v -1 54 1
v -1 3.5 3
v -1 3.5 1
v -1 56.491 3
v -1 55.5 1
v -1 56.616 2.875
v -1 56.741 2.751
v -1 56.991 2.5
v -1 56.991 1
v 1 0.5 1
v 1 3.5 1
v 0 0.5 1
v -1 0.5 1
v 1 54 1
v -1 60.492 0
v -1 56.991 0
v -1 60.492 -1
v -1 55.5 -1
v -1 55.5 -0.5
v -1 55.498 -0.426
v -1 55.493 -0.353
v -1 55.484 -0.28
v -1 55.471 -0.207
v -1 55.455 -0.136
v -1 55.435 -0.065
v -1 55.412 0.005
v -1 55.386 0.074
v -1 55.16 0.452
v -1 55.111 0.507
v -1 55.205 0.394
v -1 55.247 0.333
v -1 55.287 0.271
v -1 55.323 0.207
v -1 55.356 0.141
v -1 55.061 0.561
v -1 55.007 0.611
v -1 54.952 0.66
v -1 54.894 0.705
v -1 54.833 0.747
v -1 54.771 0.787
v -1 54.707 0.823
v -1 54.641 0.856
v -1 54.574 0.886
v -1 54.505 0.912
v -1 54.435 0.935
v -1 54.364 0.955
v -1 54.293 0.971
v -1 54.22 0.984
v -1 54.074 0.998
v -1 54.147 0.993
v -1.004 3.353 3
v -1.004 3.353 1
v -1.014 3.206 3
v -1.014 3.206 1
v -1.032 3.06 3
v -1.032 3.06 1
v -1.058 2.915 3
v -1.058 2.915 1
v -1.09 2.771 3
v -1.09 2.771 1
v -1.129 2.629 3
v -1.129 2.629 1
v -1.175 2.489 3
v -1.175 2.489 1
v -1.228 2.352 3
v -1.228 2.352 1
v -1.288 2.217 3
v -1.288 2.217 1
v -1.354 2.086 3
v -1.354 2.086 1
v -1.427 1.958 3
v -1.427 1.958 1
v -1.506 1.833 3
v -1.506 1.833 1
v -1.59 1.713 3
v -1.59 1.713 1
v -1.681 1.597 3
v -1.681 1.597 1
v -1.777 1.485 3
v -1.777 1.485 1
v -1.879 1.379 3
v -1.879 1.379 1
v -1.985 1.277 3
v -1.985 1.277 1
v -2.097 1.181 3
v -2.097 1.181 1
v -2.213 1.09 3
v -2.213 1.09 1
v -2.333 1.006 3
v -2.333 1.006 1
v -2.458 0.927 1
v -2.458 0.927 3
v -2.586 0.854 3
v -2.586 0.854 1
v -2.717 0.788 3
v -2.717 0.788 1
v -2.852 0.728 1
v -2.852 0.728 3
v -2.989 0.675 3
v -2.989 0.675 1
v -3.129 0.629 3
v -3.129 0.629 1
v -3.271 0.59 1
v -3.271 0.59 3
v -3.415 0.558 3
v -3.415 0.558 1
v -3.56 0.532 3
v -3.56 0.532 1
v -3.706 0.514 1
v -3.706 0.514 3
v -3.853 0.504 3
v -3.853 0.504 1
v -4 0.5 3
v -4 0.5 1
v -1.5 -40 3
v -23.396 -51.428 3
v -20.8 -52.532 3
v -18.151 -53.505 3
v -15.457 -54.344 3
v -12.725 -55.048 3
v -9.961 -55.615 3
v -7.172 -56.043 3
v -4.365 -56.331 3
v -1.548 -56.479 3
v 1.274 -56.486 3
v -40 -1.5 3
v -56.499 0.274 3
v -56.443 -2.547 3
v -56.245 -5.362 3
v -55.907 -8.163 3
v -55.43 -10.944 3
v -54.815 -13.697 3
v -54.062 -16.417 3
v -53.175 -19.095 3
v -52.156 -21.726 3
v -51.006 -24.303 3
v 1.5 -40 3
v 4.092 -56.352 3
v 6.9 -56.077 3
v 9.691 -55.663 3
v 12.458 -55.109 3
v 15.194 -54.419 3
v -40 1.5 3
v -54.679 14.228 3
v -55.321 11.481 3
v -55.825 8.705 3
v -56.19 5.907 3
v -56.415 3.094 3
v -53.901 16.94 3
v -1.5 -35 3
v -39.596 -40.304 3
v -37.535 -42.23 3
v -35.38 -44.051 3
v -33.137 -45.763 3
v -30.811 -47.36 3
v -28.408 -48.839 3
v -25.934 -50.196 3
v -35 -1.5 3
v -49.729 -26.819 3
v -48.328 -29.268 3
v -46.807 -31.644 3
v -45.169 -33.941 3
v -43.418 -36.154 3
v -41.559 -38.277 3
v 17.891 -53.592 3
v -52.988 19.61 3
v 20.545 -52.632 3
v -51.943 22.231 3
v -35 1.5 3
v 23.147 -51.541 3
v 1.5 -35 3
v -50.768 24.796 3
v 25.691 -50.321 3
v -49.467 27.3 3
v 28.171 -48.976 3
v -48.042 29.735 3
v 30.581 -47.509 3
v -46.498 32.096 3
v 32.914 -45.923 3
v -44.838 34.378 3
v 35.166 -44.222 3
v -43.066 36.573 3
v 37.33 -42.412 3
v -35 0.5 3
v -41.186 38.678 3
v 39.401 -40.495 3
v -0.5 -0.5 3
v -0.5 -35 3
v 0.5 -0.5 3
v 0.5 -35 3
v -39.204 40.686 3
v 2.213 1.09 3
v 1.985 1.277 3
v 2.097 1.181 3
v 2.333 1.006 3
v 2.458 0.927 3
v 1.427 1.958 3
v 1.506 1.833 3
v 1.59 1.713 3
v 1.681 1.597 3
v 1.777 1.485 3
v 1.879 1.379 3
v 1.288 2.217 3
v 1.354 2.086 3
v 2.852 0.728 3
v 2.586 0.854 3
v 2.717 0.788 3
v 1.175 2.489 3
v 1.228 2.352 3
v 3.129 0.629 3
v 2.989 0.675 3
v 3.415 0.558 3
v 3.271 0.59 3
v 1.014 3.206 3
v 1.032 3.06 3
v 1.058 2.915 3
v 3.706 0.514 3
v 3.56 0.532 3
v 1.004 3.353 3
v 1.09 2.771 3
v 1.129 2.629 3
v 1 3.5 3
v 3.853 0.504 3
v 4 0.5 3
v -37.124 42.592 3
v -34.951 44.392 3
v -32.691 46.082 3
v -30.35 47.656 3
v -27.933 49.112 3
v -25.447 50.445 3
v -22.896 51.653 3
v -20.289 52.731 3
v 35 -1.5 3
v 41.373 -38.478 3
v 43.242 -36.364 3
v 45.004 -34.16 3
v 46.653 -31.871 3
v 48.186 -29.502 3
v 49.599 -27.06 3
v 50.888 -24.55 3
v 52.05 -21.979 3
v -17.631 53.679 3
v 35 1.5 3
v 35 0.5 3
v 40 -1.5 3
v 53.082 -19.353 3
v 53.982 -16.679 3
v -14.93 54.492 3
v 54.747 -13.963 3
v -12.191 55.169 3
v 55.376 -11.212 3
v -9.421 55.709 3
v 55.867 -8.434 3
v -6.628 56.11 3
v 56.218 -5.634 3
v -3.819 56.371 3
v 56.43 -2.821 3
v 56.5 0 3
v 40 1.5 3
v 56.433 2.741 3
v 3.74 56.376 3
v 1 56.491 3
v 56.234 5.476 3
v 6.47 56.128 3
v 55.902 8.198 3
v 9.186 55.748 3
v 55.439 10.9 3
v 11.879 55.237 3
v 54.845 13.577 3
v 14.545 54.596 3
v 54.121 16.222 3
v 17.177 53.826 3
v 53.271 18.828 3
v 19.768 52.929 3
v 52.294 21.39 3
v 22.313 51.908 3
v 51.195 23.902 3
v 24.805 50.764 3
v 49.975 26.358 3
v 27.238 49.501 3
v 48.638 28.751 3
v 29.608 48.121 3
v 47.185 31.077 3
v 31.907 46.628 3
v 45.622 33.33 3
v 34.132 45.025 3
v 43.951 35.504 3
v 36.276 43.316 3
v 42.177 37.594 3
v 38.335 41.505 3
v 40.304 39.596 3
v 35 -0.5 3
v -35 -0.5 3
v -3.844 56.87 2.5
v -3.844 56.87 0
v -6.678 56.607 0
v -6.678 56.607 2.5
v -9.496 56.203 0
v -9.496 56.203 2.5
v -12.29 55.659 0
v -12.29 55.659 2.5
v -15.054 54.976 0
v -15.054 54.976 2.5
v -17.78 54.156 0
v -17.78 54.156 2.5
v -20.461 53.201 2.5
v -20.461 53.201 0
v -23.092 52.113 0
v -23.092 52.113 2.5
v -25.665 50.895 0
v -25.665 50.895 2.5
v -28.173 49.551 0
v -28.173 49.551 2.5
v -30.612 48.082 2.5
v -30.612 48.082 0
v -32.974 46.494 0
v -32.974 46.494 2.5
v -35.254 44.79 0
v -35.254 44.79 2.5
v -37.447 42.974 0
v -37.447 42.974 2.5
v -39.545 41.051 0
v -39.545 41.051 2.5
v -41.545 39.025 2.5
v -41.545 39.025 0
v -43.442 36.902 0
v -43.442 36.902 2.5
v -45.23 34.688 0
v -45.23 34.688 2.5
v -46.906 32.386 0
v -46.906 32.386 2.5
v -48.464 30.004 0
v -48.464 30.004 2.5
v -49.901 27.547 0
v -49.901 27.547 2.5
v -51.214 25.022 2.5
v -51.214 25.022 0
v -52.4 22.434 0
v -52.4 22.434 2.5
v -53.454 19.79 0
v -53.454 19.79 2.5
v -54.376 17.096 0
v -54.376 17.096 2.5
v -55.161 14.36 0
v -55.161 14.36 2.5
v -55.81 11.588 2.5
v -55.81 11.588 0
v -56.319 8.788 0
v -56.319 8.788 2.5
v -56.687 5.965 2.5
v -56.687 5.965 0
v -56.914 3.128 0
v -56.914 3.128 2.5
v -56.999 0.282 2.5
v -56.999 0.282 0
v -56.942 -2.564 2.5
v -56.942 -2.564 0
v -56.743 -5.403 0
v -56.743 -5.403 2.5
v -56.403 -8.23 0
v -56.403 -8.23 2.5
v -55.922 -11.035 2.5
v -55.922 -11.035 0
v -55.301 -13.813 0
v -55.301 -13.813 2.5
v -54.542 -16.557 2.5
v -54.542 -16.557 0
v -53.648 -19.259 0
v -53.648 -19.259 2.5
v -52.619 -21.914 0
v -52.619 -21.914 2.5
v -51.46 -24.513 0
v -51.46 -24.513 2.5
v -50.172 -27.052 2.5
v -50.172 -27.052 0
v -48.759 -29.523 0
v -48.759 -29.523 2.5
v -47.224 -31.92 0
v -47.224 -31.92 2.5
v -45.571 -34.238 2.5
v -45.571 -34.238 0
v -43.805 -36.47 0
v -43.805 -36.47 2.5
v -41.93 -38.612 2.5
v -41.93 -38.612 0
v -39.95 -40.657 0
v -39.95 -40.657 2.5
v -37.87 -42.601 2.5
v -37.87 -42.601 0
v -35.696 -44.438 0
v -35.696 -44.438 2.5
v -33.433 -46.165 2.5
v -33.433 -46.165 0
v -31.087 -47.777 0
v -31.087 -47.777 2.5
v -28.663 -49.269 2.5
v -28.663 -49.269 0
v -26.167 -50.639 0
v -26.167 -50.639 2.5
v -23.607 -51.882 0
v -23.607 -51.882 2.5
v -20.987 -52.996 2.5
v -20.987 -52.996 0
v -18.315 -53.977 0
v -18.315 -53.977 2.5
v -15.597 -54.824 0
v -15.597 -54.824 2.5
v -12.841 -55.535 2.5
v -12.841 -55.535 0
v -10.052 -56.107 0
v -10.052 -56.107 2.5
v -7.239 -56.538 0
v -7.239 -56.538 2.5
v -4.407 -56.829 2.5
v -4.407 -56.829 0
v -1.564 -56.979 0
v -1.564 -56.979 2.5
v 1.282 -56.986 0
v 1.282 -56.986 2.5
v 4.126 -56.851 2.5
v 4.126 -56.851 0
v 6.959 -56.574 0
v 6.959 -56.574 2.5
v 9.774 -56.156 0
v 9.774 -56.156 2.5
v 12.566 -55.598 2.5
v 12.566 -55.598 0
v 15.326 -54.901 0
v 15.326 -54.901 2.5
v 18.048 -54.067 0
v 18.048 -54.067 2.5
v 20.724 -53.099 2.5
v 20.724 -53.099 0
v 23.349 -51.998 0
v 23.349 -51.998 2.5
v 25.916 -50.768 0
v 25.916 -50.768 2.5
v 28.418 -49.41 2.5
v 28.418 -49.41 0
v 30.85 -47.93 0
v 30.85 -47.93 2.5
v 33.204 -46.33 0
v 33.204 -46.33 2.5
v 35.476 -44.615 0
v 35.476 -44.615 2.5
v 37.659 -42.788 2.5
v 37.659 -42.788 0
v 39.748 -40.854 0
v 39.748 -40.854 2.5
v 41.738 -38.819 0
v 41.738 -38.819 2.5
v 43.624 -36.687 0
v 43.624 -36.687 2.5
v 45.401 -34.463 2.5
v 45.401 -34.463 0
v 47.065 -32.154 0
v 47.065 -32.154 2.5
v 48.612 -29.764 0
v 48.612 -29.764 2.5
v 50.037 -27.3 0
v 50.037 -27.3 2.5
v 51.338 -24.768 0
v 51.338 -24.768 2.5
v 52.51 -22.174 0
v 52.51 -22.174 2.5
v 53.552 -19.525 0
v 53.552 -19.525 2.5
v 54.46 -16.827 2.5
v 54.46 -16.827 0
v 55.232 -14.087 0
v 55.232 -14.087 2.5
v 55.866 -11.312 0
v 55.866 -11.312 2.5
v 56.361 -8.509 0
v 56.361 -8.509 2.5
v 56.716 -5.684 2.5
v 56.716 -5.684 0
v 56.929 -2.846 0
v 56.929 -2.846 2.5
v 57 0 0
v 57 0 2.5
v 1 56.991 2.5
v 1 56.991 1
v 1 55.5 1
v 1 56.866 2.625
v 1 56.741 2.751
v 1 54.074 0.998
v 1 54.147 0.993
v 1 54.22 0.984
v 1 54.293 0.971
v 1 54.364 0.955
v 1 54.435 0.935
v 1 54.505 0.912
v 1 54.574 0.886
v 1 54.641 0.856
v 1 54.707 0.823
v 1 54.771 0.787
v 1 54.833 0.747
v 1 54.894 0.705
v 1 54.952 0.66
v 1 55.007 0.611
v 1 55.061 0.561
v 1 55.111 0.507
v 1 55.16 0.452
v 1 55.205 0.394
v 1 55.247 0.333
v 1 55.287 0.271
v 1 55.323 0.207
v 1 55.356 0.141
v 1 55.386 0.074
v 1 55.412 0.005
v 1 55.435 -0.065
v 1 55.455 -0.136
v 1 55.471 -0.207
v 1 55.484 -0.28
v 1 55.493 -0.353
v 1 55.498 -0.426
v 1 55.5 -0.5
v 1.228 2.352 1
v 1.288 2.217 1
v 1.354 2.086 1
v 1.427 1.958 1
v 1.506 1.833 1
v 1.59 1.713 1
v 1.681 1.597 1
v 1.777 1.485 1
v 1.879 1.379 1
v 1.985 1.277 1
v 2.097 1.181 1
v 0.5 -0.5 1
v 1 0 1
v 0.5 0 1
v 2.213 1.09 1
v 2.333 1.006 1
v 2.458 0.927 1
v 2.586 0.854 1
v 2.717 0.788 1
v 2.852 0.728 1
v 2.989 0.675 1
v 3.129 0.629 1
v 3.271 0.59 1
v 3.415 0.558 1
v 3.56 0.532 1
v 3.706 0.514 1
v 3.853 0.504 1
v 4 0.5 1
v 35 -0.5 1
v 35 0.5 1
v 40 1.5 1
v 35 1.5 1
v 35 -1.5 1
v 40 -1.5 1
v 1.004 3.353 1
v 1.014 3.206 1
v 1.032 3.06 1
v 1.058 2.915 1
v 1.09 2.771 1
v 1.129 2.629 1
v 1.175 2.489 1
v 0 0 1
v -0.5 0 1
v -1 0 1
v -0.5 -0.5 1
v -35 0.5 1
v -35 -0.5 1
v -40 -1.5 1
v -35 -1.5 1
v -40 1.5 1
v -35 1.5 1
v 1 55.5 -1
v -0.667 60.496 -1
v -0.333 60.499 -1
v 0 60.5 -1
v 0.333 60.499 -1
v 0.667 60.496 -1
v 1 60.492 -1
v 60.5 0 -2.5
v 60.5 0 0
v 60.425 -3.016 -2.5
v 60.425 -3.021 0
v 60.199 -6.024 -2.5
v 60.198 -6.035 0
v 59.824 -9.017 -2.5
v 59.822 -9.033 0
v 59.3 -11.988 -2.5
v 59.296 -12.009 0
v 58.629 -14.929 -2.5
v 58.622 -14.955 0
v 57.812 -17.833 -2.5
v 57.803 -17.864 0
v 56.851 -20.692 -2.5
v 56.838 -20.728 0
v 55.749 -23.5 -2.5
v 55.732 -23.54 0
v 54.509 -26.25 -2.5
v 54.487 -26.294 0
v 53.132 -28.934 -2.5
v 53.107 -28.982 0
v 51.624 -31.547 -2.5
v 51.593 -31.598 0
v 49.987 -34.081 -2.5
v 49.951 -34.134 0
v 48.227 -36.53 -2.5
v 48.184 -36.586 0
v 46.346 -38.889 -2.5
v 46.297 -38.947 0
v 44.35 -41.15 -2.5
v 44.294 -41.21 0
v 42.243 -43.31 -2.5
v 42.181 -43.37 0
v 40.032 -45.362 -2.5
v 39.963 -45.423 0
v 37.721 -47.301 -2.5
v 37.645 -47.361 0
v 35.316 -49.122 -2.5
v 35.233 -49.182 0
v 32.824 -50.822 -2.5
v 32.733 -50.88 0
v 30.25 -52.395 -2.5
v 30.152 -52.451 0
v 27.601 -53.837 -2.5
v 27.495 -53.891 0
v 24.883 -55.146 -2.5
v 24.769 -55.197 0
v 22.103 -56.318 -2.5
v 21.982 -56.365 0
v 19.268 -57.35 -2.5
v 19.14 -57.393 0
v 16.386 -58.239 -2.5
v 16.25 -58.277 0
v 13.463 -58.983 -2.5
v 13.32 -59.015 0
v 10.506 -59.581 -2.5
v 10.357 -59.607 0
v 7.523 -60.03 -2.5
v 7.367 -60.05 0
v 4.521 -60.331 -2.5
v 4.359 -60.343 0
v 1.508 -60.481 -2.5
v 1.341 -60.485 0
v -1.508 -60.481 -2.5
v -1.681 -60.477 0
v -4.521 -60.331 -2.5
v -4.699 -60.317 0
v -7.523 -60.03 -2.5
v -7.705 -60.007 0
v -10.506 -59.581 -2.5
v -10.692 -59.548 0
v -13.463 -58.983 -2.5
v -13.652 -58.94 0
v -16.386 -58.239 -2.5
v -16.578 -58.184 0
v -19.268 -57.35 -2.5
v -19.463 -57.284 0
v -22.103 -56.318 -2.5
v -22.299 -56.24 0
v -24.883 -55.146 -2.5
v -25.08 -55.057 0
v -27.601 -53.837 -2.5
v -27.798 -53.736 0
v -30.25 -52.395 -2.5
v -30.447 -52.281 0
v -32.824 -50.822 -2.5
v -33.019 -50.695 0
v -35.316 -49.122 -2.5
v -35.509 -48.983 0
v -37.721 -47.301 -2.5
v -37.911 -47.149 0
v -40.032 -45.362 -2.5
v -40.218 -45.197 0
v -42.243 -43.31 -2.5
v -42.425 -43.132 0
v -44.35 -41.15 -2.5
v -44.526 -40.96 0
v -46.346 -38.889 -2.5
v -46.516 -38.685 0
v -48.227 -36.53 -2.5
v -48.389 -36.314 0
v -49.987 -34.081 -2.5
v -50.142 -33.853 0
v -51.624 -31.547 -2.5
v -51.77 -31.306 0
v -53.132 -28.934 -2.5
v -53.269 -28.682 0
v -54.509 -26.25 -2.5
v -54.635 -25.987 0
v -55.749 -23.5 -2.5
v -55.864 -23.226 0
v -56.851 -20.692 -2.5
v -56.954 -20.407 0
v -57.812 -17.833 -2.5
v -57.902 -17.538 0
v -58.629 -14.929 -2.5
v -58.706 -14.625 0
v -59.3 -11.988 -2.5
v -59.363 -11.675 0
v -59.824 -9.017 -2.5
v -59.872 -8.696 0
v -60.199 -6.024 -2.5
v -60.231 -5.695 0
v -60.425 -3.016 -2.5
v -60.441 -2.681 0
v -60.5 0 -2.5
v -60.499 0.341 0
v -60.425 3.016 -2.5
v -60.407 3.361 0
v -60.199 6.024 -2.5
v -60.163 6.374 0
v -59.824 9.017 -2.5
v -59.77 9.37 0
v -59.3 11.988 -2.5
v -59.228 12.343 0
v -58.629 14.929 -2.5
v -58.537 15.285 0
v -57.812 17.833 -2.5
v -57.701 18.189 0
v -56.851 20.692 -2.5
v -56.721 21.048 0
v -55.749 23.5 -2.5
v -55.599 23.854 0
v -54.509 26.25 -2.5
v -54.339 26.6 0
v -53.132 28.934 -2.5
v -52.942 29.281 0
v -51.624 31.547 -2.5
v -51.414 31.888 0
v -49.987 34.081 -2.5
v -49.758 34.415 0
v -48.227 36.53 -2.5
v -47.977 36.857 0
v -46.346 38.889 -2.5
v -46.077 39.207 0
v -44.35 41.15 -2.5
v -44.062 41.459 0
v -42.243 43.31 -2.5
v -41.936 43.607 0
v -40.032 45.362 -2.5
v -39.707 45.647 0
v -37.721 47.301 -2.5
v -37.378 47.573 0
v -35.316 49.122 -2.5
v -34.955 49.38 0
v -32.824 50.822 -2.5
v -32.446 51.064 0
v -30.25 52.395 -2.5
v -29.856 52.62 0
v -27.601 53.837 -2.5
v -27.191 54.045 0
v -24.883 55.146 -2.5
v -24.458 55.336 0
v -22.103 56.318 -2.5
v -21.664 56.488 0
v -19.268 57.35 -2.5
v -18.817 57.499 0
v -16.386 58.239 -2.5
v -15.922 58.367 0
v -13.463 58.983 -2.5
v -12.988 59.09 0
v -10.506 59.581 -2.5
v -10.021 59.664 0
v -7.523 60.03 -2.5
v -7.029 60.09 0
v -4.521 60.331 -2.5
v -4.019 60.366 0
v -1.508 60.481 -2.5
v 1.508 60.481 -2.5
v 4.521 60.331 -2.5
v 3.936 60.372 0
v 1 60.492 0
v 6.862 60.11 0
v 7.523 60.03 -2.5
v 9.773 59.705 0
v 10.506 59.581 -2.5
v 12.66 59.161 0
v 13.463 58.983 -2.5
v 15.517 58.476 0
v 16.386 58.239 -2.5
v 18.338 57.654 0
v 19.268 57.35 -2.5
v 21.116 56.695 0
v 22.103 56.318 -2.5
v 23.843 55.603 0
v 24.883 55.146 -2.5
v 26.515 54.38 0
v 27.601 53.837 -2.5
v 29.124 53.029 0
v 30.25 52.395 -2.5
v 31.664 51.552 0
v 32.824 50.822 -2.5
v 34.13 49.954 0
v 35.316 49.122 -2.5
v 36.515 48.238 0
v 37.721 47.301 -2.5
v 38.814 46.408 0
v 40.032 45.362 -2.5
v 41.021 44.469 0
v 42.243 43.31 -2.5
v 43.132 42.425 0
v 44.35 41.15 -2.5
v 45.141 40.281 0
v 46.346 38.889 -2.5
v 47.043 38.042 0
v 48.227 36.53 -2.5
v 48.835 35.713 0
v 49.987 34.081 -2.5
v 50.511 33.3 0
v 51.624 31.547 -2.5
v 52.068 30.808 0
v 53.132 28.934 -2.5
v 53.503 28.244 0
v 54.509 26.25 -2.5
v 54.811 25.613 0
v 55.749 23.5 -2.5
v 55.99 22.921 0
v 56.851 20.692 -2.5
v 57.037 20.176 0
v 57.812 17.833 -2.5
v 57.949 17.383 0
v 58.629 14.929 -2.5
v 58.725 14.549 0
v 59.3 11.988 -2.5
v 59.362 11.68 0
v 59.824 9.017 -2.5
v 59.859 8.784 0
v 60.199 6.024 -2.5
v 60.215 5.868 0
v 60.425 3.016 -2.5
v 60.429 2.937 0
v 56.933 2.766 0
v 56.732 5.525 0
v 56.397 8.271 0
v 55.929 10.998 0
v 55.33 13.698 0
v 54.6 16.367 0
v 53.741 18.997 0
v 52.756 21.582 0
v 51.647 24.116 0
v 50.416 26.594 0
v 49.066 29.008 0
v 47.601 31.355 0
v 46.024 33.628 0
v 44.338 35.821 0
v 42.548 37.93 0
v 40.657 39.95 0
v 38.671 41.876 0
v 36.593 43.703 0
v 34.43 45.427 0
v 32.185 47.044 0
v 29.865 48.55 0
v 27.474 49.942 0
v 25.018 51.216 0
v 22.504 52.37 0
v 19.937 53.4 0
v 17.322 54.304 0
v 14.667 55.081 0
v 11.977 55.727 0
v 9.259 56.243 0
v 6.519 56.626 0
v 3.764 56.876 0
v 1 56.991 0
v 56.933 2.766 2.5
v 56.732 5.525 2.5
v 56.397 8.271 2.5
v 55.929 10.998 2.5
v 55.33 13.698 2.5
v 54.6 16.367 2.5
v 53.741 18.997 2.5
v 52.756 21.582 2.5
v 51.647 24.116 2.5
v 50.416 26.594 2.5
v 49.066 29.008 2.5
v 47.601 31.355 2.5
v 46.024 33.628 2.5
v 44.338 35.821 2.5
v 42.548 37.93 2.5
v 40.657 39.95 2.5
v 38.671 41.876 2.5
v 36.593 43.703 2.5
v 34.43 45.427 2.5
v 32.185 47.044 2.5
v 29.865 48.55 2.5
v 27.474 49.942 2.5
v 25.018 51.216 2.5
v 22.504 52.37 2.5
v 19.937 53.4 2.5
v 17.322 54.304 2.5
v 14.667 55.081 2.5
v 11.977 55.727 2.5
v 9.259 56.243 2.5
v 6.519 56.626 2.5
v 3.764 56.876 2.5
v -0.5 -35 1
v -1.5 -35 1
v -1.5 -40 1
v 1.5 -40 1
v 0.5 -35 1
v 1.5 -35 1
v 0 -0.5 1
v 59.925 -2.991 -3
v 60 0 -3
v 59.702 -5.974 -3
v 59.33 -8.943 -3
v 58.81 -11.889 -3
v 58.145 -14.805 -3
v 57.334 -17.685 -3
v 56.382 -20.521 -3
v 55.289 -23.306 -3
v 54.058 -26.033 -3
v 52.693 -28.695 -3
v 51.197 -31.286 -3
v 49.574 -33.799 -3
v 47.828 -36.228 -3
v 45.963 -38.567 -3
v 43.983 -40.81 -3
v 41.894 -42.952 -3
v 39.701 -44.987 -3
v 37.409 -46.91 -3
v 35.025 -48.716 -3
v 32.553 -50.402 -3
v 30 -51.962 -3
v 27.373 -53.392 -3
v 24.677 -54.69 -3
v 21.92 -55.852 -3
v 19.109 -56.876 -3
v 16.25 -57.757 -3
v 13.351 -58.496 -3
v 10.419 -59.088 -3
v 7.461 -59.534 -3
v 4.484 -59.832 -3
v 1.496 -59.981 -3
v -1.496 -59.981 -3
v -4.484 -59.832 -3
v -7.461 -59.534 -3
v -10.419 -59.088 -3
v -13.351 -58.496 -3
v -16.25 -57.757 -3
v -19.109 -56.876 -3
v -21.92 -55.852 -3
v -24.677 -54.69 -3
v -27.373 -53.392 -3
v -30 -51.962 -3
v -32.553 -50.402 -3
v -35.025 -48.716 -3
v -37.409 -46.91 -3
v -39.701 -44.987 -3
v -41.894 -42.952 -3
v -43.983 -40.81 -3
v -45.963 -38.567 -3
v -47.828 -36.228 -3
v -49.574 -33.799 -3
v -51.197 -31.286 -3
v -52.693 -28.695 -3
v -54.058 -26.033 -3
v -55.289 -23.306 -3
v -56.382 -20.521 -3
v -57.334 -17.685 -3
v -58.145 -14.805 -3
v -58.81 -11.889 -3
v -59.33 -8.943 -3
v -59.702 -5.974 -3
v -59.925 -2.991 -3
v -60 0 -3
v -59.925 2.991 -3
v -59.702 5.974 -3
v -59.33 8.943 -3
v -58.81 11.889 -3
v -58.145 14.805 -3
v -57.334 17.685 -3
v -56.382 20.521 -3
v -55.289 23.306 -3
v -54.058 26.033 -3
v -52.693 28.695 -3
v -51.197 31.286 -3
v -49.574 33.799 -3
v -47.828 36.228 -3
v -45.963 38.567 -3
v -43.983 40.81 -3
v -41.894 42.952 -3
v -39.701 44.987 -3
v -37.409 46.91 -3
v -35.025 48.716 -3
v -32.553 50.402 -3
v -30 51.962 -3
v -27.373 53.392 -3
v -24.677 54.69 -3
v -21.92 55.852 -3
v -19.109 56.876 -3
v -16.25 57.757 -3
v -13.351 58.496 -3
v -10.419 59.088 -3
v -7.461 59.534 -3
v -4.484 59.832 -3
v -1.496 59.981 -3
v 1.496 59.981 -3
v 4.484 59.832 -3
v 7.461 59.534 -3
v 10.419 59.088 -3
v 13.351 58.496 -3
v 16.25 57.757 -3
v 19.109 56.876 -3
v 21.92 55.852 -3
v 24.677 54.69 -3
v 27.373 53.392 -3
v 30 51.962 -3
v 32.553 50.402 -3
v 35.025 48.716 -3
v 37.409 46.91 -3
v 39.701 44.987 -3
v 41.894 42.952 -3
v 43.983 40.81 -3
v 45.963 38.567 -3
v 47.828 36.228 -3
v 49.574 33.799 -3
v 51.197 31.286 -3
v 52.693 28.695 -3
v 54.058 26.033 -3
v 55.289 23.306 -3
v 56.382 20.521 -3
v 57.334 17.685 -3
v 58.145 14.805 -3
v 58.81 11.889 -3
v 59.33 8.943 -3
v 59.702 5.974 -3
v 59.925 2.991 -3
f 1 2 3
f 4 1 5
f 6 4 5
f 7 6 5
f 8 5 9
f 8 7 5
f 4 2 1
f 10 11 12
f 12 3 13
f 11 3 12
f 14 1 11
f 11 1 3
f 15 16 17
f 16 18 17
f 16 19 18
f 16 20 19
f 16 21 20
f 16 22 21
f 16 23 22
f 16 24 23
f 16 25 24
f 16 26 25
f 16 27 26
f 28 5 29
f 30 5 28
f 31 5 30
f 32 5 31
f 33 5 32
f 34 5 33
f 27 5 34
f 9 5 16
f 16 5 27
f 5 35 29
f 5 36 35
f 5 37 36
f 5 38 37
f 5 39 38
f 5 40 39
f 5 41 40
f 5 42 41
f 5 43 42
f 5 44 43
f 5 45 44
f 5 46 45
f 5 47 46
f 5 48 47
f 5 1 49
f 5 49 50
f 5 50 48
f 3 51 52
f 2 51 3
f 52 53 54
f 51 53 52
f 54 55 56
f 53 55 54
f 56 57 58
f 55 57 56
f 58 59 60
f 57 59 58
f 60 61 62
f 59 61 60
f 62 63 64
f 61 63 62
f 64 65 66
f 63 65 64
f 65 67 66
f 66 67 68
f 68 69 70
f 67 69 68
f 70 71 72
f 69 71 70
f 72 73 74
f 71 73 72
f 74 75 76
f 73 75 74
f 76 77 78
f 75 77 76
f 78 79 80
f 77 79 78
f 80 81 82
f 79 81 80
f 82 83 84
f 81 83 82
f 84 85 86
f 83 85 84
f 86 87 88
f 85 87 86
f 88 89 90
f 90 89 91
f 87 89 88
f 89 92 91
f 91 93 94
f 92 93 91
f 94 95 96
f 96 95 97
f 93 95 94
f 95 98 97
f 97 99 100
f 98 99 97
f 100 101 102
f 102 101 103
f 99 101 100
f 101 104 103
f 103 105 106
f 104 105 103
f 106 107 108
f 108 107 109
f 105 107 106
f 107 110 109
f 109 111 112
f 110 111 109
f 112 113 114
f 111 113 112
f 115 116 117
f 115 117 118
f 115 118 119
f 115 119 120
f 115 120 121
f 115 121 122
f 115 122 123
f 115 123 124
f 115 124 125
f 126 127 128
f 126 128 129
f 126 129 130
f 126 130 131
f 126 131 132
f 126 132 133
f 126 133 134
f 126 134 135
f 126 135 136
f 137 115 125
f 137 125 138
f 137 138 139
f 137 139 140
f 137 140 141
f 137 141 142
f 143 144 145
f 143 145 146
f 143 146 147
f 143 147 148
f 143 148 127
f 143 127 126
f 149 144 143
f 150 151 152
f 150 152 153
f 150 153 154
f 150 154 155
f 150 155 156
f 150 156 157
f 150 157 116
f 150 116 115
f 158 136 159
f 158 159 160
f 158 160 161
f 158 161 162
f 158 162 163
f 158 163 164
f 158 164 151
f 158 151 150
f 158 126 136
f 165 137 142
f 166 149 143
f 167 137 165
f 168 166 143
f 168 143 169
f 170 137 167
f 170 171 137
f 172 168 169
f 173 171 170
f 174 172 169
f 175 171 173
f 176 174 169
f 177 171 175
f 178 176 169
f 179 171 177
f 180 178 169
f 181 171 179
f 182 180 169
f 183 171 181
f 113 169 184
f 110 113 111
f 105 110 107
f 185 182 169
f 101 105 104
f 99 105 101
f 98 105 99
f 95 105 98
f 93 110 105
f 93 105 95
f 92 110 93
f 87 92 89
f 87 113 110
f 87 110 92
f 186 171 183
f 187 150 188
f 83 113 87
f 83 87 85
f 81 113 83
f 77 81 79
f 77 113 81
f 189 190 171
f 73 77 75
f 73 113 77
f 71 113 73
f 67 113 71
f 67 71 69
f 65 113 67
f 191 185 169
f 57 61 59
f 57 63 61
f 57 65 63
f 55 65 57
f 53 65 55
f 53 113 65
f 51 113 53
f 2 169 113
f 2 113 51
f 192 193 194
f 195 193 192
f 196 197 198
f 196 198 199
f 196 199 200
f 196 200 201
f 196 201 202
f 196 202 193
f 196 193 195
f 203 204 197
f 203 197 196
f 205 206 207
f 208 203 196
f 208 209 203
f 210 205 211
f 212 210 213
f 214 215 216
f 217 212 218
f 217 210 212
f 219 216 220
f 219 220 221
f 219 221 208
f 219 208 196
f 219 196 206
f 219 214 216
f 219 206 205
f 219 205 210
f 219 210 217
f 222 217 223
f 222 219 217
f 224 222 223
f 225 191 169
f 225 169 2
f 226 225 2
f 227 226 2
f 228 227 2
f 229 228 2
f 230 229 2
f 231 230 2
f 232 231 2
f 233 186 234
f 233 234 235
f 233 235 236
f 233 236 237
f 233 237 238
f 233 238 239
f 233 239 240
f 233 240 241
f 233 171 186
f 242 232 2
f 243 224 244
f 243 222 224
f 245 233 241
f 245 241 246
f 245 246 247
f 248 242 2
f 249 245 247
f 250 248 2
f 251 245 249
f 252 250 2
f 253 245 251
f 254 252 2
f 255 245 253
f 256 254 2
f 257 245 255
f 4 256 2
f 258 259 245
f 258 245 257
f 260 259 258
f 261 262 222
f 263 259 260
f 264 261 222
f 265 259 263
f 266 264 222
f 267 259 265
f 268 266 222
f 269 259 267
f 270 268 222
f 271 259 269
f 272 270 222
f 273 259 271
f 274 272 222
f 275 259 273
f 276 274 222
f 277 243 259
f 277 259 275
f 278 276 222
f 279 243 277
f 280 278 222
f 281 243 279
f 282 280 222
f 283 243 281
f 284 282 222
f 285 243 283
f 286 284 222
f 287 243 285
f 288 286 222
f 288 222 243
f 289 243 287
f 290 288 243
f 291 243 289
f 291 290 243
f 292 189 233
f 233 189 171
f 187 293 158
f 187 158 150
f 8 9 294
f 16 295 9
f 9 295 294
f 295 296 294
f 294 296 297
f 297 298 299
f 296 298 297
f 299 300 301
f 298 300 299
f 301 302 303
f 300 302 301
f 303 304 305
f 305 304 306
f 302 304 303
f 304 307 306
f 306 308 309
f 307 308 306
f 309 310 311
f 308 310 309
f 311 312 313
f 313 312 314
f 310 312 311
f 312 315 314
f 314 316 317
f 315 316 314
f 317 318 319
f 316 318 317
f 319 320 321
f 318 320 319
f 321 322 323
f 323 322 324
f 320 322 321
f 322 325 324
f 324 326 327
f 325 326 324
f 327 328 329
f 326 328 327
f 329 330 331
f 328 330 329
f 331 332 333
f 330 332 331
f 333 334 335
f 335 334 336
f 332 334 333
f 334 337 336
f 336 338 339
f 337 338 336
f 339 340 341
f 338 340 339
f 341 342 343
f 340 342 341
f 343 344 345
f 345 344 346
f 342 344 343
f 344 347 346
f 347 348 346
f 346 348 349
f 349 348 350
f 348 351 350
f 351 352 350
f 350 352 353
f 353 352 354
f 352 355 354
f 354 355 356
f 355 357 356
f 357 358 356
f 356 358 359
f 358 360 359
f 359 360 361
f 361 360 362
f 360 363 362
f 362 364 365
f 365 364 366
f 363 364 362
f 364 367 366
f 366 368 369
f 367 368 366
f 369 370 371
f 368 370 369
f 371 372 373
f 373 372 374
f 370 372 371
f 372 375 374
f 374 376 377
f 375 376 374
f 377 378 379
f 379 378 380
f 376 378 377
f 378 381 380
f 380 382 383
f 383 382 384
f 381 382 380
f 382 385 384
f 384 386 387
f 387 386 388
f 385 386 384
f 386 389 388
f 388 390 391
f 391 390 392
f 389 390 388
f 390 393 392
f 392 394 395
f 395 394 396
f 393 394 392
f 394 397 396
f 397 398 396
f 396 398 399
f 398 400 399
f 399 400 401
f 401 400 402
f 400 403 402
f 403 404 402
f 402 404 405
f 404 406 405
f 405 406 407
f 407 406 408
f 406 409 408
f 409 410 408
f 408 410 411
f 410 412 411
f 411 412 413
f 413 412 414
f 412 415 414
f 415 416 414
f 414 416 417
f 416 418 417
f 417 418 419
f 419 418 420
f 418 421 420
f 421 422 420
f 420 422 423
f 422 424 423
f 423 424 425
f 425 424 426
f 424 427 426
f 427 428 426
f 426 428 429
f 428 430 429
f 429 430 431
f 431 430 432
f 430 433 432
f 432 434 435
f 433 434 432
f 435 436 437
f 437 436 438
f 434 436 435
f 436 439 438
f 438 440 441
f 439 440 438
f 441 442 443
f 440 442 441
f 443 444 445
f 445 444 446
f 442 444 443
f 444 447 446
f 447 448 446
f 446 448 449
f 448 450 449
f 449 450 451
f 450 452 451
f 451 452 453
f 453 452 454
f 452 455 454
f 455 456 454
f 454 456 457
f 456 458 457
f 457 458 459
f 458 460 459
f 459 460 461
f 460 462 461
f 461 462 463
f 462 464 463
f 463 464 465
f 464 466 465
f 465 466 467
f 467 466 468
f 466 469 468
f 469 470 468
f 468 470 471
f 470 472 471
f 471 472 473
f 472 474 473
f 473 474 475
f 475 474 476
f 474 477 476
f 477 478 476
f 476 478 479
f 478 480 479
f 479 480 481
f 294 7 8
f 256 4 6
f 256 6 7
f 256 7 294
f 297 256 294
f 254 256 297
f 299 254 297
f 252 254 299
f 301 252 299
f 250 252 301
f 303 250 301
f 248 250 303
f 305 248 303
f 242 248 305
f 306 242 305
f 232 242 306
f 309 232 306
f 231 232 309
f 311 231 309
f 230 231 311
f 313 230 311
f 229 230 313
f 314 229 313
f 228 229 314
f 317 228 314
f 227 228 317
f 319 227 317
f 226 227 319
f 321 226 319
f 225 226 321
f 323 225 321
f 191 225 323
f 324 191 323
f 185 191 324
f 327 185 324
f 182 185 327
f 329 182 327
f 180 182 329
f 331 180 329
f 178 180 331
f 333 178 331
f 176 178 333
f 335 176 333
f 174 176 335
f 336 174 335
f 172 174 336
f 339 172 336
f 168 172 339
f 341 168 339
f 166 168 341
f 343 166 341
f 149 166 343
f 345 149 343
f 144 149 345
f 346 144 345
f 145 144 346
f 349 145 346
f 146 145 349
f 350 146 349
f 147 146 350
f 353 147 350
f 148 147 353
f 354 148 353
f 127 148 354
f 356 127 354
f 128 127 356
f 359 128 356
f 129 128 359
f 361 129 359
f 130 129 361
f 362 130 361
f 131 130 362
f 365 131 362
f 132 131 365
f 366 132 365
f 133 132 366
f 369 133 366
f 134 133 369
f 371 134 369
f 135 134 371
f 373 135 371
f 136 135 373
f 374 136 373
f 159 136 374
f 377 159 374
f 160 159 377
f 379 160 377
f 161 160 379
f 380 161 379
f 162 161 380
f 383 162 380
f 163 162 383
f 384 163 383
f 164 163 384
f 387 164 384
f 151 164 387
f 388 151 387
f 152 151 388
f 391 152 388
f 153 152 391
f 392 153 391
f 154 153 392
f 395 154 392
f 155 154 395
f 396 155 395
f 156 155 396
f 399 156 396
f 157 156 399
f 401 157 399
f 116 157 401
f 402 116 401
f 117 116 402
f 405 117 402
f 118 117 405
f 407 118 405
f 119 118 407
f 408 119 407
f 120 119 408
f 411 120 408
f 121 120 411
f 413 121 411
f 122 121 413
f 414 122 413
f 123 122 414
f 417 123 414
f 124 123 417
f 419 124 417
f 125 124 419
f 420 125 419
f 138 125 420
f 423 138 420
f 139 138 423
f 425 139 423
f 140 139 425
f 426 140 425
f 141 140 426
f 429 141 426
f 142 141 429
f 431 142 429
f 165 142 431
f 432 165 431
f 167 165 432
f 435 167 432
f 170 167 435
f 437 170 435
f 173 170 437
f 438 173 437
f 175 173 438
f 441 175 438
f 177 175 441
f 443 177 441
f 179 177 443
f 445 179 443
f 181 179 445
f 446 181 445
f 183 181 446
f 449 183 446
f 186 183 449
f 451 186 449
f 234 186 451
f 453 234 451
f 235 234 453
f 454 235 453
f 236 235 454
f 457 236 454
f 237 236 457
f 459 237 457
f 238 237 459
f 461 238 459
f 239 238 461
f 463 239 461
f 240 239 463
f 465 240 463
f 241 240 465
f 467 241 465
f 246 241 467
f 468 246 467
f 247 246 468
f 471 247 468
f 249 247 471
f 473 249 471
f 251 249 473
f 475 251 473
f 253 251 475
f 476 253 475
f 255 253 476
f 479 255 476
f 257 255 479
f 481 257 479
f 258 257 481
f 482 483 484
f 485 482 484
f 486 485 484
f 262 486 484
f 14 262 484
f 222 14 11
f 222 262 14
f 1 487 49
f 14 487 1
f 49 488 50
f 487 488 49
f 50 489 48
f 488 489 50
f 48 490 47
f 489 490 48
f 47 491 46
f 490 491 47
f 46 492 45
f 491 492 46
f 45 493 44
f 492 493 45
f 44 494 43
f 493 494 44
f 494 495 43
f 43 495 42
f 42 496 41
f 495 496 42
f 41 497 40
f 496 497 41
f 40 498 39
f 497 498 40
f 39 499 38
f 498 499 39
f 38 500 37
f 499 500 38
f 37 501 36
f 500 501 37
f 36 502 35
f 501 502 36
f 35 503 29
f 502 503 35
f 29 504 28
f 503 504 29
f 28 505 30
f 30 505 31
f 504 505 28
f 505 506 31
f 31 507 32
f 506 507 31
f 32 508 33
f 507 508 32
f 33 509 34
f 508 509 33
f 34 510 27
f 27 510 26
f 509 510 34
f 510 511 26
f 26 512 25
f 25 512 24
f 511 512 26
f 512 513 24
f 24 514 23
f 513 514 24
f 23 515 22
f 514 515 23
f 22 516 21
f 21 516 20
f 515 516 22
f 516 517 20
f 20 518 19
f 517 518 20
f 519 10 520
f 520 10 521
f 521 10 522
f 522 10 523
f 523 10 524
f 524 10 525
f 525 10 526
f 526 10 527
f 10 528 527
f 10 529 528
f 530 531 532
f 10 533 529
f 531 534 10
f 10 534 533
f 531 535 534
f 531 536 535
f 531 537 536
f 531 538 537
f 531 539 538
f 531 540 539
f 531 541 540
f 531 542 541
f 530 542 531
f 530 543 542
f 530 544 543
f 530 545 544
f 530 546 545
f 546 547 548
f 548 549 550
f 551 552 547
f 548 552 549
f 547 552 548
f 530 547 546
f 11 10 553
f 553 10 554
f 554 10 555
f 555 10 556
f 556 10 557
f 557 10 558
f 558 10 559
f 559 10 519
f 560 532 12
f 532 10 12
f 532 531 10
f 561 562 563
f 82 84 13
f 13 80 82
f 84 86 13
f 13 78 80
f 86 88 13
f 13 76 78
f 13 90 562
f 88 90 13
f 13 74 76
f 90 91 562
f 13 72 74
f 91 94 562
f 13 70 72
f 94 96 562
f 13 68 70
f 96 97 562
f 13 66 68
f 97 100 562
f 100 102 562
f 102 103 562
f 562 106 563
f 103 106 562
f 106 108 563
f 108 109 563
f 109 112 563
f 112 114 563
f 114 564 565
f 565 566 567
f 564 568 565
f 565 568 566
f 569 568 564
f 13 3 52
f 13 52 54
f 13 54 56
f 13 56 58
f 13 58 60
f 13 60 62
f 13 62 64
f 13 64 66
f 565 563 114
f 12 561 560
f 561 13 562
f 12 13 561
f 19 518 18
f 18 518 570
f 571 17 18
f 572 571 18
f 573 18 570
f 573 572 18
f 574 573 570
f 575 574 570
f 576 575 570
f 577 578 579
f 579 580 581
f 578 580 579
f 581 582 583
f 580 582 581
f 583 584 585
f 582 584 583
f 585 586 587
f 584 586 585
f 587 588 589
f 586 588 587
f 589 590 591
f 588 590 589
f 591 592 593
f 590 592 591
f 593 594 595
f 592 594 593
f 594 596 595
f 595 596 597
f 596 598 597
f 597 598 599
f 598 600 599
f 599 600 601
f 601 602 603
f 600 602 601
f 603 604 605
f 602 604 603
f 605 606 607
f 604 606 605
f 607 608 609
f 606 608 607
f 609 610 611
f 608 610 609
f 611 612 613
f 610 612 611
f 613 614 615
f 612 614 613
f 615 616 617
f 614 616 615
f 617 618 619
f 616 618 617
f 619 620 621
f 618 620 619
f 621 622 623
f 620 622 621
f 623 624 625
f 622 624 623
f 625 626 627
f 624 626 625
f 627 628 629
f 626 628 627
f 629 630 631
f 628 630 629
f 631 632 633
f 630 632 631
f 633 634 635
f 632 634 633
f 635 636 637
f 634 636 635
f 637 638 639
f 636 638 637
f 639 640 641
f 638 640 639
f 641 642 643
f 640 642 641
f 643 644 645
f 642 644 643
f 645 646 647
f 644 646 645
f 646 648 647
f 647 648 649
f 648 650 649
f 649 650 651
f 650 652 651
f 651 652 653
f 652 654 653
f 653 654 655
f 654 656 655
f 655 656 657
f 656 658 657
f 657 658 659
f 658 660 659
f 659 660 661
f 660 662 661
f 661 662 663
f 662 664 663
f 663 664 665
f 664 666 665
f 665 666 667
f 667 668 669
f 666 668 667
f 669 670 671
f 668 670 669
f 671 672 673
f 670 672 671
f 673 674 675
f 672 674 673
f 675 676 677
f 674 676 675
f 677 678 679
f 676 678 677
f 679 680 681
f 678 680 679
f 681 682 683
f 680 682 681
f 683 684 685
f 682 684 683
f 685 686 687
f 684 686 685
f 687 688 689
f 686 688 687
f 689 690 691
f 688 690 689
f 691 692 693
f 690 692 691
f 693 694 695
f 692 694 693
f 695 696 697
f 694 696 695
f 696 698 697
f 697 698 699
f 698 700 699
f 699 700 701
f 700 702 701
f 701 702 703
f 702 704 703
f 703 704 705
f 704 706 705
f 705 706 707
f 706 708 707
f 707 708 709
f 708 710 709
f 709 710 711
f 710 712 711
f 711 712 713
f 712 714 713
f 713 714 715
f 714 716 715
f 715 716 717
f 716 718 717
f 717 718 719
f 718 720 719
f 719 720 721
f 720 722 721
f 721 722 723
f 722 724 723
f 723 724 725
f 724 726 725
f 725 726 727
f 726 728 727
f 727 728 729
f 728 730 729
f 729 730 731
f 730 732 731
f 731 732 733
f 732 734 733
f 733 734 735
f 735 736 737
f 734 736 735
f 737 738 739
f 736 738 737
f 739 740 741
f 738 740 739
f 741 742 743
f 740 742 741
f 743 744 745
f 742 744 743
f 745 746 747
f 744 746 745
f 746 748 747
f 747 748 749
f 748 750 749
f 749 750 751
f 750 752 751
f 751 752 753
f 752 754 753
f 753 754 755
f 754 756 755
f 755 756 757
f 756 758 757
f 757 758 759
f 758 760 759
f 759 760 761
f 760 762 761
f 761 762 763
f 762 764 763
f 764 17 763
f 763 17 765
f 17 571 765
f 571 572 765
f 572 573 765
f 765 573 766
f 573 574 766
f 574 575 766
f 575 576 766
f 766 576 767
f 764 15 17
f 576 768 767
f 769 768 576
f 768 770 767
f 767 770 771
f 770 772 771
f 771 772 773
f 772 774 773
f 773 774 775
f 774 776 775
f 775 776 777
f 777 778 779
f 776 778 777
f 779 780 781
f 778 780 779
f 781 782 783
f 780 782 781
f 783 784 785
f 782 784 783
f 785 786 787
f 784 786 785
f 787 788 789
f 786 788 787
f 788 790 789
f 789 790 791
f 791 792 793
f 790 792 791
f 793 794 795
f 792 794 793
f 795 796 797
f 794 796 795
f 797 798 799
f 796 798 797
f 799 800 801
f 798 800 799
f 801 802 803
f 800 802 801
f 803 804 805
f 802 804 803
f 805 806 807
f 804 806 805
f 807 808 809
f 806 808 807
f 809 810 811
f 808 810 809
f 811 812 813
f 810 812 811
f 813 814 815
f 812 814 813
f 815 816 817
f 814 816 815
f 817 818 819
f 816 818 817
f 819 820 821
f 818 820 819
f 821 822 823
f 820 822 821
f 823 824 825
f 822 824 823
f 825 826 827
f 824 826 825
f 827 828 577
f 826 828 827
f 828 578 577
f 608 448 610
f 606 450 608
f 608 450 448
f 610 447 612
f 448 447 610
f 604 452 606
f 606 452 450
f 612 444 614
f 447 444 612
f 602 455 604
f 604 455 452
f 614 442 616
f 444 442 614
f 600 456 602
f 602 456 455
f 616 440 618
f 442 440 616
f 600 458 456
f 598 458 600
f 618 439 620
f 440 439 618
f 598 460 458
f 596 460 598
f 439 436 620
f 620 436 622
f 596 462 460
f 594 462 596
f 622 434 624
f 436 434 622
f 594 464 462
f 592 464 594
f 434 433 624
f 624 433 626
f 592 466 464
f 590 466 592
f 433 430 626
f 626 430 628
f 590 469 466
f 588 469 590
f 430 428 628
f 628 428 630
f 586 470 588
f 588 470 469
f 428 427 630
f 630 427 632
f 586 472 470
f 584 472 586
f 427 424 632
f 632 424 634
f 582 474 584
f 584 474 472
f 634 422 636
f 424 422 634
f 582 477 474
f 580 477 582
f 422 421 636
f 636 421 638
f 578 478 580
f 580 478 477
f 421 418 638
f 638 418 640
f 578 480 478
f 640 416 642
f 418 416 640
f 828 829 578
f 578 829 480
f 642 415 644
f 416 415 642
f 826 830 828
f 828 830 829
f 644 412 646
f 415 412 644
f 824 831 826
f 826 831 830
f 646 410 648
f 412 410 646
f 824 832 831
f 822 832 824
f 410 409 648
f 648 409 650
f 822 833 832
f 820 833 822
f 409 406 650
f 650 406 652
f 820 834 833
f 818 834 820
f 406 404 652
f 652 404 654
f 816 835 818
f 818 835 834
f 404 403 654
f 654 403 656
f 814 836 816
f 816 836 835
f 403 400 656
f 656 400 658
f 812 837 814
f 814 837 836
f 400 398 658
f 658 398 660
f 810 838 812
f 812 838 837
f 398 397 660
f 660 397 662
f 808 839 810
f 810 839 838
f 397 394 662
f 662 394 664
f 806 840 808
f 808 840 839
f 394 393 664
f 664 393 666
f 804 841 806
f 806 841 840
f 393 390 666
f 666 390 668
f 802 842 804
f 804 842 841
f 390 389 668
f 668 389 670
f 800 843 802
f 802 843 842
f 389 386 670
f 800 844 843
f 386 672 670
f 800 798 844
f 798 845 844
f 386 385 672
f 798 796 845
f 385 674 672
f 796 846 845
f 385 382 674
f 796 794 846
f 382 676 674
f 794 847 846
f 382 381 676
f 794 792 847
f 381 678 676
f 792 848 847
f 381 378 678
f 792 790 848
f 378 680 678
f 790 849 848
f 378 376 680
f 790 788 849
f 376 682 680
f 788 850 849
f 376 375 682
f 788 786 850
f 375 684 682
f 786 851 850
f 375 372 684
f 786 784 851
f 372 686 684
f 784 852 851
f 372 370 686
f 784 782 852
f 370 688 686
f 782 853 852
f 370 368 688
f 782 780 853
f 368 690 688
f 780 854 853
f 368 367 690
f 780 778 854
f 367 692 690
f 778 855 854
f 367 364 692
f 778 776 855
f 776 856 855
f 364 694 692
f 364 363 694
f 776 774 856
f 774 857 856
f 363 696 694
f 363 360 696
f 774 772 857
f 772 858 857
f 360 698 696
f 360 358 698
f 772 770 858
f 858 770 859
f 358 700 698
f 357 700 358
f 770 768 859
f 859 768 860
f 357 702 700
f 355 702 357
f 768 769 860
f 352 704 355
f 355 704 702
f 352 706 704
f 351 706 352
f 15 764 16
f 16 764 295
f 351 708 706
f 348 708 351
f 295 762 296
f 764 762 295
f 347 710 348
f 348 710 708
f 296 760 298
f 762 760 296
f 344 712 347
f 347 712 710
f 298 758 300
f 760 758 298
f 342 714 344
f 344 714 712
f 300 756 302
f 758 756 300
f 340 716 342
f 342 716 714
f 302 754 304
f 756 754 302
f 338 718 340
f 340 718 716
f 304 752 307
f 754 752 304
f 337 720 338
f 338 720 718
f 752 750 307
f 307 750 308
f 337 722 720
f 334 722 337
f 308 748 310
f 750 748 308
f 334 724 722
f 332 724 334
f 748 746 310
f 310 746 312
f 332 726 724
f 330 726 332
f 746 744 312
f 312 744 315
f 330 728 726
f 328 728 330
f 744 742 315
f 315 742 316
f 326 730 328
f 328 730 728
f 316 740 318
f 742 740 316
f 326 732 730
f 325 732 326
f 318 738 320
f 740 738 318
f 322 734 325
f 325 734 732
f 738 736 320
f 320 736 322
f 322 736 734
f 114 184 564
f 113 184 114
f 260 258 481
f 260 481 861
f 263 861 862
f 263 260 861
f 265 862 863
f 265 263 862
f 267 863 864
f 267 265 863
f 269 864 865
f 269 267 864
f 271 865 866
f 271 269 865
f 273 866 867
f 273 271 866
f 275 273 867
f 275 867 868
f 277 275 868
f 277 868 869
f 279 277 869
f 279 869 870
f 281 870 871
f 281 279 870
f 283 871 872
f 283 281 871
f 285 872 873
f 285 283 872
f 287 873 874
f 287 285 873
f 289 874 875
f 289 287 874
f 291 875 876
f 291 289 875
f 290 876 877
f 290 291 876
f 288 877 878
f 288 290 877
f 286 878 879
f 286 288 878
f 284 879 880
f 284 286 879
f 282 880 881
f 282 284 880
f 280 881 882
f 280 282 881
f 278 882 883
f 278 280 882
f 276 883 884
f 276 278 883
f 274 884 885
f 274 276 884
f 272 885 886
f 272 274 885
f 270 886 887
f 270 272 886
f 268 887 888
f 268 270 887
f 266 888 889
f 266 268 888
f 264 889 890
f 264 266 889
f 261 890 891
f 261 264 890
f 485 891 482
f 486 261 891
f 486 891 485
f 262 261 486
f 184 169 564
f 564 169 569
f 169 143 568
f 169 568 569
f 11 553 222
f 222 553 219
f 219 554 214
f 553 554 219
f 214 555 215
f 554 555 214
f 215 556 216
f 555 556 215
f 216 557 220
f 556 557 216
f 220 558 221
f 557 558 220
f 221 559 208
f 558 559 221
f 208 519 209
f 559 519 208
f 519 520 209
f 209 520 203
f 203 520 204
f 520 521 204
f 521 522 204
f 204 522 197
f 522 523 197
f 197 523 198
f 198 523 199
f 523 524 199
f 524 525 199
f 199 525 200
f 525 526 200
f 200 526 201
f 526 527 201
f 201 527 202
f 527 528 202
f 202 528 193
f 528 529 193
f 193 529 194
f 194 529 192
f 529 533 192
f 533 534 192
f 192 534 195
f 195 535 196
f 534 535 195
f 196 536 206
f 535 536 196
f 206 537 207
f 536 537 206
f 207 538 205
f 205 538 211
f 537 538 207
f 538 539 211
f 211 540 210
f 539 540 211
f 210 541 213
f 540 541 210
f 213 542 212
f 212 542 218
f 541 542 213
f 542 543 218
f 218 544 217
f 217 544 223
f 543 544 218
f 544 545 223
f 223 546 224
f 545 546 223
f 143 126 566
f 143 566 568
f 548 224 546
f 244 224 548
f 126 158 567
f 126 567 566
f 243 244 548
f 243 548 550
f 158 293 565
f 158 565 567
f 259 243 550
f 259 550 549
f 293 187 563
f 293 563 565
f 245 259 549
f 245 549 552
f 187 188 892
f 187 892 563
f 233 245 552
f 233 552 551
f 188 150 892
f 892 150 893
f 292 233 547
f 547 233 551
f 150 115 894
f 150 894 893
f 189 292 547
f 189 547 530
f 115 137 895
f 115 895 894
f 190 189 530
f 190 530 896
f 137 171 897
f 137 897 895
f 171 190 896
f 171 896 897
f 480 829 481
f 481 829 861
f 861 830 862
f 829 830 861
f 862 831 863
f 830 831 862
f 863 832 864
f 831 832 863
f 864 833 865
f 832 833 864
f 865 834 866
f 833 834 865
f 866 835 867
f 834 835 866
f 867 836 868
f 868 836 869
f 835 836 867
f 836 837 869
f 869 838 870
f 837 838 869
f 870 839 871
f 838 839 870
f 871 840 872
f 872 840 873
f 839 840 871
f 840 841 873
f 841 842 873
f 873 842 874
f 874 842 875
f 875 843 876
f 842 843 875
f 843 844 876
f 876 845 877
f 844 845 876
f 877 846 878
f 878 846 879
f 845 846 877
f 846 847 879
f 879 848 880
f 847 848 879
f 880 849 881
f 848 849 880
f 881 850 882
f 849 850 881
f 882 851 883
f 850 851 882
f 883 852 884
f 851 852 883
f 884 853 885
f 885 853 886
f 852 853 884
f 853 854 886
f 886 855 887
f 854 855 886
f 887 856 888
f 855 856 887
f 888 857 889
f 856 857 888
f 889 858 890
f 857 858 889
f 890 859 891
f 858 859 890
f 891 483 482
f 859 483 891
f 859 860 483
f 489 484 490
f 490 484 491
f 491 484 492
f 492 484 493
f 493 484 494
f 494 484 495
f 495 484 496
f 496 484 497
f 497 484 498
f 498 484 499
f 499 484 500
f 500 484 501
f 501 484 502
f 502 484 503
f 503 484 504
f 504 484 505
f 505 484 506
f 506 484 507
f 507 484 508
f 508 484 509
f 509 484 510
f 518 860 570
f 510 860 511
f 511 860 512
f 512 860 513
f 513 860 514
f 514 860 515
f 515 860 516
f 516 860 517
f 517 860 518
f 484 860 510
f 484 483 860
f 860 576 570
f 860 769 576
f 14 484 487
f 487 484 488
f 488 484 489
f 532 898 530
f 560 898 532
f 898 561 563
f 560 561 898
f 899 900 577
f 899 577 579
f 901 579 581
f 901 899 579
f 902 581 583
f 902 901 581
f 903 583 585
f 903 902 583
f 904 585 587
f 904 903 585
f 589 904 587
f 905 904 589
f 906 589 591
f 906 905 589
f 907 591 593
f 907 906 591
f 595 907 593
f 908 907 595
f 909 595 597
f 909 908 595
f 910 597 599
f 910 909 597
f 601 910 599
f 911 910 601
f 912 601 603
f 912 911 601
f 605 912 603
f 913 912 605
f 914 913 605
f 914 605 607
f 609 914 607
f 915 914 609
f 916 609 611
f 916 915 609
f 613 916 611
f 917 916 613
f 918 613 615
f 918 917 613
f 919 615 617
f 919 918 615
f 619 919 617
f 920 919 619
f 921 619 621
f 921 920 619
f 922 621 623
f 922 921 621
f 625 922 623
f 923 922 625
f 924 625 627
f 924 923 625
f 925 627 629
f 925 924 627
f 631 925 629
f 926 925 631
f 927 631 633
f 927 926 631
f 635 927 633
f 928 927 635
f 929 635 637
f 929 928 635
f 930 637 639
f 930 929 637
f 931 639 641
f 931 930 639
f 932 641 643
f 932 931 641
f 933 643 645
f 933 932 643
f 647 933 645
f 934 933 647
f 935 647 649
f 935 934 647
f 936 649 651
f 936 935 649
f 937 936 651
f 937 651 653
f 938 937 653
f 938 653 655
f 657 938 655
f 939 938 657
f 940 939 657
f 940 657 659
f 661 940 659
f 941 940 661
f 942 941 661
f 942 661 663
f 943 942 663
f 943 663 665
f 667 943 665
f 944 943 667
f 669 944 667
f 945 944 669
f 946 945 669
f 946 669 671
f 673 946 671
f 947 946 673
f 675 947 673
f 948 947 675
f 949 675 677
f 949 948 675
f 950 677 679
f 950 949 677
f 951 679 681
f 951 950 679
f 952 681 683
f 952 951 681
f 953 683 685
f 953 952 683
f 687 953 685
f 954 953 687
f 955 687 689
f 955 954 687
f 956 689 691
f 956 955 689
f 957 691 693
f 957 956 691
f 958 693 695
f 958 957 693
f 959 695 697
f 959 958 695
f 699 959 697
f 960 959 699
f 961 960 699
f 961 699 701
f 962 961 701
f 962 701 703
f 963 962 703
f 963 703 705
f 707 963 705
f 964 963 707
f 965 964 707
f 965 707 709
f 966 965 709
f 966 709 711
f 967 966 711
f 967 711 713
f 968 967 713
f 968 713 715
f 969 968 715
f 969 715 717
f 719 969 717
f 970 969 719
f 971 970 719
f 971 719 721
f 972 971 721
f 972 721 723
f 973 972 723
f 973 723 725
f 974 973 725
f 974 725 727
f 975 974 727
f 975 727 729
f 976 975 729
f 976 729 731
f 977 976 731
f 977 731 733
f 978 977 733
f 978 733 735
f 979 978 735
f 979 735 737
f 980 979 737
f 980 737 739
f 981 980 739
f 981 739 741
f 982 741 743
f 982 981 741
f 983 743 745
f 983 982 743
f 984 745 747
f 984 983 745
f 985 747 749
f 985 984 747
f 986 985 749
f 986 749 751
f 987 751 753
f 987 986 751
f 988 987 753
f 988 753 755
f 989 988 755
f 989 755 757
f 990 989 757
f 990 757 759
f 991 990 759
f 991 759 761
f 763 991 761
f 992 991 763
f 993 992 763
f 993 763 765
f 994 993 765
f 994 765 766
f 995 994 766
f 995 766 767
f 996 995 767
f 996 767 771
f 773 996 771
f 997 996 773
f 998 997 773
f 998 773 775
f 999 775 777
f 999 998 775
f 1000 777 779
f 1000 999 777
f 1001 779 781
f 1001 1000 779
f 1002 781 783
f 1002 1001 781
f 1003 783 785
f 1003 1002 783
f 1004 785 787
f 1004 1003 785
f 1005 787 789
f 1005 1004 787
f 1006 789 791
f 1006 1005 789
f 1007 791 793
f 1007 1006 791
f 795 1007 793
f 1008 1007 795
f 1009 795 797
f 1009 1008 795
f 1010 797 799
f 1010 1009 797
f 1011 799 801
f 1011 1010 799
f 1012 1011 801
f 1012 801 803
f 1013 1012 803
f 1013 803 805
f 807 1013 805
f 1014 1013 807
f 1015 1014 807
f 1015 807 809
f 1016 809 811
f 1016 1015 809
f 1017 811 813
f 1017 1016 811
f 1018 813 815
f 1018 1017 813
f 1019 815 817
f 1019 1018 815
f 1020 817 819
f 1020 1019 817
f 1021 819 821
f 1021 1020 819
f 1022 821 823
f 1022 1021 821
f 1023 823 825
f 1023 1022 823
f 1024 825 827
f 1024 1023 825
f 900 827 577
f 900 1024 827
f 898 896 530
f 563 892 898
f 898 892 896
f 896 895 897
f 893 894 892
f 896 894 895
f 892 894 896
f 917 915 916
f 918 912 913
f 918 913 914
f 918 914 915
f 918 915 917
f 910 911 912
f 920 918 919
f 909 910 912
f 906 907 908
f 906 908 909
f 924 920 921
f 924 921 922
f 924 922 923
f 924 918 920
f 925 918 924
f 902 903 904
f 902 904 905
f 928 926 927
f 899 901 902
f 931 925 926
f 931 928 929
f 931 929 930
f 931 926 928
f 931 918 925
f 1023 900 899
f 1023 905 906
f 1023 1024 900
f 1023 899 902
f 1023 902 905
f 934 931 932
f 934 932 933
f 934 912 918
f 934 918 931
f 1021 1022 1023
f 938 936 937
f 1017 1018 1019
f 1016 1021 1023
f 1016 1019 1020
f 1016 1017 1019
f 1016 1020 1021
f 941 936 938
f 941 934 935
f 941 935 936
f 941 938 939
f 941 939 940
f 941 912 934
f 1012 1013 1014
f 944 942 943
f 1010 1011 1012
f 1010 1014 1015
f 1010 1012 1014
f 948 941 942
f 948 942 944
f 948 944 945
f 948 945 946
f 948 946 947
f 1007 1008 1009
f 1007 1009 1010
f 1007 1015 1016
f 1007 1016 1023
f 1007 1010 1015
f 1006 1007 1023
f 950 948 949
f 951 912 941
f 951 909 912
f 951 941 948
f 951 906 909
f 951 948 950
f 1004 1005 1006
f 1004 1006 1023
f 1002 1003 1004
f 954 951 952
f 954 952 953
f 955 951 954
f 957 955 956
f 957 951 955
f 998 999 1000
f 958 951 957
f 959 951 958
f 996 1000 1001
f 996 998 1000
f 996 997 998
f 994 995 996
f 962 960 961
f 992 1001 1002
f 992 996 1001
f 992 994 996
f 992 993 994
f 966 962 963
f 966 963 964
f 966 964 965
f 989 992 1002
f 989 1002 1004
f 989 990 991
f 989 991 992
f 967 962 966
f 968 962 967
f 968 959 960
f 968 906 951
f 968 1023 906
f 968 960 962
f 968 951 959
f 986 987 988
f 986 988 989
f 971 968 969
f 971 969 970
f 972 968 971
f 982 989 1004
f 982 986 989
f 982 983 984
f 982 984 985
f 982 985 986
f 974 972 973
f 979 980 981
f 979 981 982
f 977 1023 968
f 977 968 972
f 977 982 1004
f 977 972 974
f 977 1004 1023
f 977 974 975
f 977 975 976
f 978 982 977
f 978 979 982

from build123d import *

# Parameters (mm, degrees)
SKETCH_R           = 57
PAD_DEPTH          = 3
SKETCH001_R        = 60.5
PAD001_DEPTH       = 3
CHAMFER_SIZE       = 0.5
CHAMFER001_SIZE    = 0.5
POCKET_DEPTH       = 2
POLARPATTERN_COUNT = 3
POLARPATTERN_ANGLE = 180
SKETCH003_W        = 2
SKETCH003_H        = 60.5
POCKET001_DEPTH    = 2
SKETCH004_W        = 2
SKETCH004_H        = 5
POCKET002_DEPTH    = 2
FILLET_R           = 3
FILLET001_R        = 1.5


with BuildPart() as part:
    # Sketch → Pad (new body)
    with BuildSketch(Plane.XY):
        Circle(SKETCH_R)
    extrude(amount=PAD_DEPTH)

    # Sketch001 (on Face2 of Pad) → Pad001 (join)
    with BuildSketch(Plane(origin=(0, 0, 0), x_dir=(1, 0, 0), z_dir=(0, 0, -1))):
        Circle(SKETCH001_R)
    extrude(amount=PAD001_DEPTH)

    # Chamfer
    chamfer_edges = [part.edges().sort_by_distance(p)[0] for p in [
        (-57, 0, 3),
    ]]
    chamfer(chamfer_edges, length=CHAMFER_SIZE)

    # Chamfer001
    chamfer001_edges = [part.edges().sort_by_distance(p)[0] for p in [
        (-60.5, 0, -3),
    ]]
    chamfer(chamfer001_edges, length=CHAMFER001_SIZE)

    # Sketch002 (on Face7 of Chamfer001) → Pocket (cut)
    with BuildSketch(Plane.XY.offset(3)):
        Polygon((-40, -1.5), (-40, 1.5), (-35, 1.5), (-35, 0.5), (0, 0.5), (0, -0.5), (-35, -0.5), (-35, -1.5), align=None)
    pocket = extrude(amount=-POCKET_DEPTH, mode=Mode.SUBTRACT)

    # PolarPattern: Pocket ×3 about axis
    polarpattern_axis = Axis((0, 0, 3), (0, 0, 1))
    for i in range(1, POLARPATTERN_COUNT):
        add(pocket.rotate(polarpattern_axis, i * POLARPATTERN_ANGLE / (POLARPATTERN_COUNT - 1)), mode=Mode.SUBTRACT)

    # Sketch003 (on Face7 of PolarPattern) → Pocket001 (cut)
    with BuildSketch(Plane.XY.offset(3)):
        with Locations((0, 30.25)):
            Rectangle(SKETCH003_W, SKETCH003_H)
    extrude(amount=-POCKET001_DEPTH, mode=Mode.SUBTRACT)

    # Sketch004 (on Face8 of Pocket001) → Pocket002 (cut)
    with BuildSketch(Plane.XY.offset(1)):
        with Locations((0, 58)):
            Rectangle(SKETCH004_W, SKETCH004_H)
    extrude(amount=-POCKET002_DEPTH, mode=Mode.SUBTRACT)

    # Fillet
    fillet_edges = [part.edges().sort_by_distance(p)[0] for p in [
        (1, 0.5, 2),
        (-1, 0.5, 2),
    ]]
    fillet(fillet_edges, radius=FILLET_R)

    # Fillet001
    fillet001_edges = [part.edges().sort_by_distance(p)[0] for p in [
        (0, 55.5, 1),
    ]]
    fillet(fillet001_edges, radius=FILLET001_R)


solid = part.part
